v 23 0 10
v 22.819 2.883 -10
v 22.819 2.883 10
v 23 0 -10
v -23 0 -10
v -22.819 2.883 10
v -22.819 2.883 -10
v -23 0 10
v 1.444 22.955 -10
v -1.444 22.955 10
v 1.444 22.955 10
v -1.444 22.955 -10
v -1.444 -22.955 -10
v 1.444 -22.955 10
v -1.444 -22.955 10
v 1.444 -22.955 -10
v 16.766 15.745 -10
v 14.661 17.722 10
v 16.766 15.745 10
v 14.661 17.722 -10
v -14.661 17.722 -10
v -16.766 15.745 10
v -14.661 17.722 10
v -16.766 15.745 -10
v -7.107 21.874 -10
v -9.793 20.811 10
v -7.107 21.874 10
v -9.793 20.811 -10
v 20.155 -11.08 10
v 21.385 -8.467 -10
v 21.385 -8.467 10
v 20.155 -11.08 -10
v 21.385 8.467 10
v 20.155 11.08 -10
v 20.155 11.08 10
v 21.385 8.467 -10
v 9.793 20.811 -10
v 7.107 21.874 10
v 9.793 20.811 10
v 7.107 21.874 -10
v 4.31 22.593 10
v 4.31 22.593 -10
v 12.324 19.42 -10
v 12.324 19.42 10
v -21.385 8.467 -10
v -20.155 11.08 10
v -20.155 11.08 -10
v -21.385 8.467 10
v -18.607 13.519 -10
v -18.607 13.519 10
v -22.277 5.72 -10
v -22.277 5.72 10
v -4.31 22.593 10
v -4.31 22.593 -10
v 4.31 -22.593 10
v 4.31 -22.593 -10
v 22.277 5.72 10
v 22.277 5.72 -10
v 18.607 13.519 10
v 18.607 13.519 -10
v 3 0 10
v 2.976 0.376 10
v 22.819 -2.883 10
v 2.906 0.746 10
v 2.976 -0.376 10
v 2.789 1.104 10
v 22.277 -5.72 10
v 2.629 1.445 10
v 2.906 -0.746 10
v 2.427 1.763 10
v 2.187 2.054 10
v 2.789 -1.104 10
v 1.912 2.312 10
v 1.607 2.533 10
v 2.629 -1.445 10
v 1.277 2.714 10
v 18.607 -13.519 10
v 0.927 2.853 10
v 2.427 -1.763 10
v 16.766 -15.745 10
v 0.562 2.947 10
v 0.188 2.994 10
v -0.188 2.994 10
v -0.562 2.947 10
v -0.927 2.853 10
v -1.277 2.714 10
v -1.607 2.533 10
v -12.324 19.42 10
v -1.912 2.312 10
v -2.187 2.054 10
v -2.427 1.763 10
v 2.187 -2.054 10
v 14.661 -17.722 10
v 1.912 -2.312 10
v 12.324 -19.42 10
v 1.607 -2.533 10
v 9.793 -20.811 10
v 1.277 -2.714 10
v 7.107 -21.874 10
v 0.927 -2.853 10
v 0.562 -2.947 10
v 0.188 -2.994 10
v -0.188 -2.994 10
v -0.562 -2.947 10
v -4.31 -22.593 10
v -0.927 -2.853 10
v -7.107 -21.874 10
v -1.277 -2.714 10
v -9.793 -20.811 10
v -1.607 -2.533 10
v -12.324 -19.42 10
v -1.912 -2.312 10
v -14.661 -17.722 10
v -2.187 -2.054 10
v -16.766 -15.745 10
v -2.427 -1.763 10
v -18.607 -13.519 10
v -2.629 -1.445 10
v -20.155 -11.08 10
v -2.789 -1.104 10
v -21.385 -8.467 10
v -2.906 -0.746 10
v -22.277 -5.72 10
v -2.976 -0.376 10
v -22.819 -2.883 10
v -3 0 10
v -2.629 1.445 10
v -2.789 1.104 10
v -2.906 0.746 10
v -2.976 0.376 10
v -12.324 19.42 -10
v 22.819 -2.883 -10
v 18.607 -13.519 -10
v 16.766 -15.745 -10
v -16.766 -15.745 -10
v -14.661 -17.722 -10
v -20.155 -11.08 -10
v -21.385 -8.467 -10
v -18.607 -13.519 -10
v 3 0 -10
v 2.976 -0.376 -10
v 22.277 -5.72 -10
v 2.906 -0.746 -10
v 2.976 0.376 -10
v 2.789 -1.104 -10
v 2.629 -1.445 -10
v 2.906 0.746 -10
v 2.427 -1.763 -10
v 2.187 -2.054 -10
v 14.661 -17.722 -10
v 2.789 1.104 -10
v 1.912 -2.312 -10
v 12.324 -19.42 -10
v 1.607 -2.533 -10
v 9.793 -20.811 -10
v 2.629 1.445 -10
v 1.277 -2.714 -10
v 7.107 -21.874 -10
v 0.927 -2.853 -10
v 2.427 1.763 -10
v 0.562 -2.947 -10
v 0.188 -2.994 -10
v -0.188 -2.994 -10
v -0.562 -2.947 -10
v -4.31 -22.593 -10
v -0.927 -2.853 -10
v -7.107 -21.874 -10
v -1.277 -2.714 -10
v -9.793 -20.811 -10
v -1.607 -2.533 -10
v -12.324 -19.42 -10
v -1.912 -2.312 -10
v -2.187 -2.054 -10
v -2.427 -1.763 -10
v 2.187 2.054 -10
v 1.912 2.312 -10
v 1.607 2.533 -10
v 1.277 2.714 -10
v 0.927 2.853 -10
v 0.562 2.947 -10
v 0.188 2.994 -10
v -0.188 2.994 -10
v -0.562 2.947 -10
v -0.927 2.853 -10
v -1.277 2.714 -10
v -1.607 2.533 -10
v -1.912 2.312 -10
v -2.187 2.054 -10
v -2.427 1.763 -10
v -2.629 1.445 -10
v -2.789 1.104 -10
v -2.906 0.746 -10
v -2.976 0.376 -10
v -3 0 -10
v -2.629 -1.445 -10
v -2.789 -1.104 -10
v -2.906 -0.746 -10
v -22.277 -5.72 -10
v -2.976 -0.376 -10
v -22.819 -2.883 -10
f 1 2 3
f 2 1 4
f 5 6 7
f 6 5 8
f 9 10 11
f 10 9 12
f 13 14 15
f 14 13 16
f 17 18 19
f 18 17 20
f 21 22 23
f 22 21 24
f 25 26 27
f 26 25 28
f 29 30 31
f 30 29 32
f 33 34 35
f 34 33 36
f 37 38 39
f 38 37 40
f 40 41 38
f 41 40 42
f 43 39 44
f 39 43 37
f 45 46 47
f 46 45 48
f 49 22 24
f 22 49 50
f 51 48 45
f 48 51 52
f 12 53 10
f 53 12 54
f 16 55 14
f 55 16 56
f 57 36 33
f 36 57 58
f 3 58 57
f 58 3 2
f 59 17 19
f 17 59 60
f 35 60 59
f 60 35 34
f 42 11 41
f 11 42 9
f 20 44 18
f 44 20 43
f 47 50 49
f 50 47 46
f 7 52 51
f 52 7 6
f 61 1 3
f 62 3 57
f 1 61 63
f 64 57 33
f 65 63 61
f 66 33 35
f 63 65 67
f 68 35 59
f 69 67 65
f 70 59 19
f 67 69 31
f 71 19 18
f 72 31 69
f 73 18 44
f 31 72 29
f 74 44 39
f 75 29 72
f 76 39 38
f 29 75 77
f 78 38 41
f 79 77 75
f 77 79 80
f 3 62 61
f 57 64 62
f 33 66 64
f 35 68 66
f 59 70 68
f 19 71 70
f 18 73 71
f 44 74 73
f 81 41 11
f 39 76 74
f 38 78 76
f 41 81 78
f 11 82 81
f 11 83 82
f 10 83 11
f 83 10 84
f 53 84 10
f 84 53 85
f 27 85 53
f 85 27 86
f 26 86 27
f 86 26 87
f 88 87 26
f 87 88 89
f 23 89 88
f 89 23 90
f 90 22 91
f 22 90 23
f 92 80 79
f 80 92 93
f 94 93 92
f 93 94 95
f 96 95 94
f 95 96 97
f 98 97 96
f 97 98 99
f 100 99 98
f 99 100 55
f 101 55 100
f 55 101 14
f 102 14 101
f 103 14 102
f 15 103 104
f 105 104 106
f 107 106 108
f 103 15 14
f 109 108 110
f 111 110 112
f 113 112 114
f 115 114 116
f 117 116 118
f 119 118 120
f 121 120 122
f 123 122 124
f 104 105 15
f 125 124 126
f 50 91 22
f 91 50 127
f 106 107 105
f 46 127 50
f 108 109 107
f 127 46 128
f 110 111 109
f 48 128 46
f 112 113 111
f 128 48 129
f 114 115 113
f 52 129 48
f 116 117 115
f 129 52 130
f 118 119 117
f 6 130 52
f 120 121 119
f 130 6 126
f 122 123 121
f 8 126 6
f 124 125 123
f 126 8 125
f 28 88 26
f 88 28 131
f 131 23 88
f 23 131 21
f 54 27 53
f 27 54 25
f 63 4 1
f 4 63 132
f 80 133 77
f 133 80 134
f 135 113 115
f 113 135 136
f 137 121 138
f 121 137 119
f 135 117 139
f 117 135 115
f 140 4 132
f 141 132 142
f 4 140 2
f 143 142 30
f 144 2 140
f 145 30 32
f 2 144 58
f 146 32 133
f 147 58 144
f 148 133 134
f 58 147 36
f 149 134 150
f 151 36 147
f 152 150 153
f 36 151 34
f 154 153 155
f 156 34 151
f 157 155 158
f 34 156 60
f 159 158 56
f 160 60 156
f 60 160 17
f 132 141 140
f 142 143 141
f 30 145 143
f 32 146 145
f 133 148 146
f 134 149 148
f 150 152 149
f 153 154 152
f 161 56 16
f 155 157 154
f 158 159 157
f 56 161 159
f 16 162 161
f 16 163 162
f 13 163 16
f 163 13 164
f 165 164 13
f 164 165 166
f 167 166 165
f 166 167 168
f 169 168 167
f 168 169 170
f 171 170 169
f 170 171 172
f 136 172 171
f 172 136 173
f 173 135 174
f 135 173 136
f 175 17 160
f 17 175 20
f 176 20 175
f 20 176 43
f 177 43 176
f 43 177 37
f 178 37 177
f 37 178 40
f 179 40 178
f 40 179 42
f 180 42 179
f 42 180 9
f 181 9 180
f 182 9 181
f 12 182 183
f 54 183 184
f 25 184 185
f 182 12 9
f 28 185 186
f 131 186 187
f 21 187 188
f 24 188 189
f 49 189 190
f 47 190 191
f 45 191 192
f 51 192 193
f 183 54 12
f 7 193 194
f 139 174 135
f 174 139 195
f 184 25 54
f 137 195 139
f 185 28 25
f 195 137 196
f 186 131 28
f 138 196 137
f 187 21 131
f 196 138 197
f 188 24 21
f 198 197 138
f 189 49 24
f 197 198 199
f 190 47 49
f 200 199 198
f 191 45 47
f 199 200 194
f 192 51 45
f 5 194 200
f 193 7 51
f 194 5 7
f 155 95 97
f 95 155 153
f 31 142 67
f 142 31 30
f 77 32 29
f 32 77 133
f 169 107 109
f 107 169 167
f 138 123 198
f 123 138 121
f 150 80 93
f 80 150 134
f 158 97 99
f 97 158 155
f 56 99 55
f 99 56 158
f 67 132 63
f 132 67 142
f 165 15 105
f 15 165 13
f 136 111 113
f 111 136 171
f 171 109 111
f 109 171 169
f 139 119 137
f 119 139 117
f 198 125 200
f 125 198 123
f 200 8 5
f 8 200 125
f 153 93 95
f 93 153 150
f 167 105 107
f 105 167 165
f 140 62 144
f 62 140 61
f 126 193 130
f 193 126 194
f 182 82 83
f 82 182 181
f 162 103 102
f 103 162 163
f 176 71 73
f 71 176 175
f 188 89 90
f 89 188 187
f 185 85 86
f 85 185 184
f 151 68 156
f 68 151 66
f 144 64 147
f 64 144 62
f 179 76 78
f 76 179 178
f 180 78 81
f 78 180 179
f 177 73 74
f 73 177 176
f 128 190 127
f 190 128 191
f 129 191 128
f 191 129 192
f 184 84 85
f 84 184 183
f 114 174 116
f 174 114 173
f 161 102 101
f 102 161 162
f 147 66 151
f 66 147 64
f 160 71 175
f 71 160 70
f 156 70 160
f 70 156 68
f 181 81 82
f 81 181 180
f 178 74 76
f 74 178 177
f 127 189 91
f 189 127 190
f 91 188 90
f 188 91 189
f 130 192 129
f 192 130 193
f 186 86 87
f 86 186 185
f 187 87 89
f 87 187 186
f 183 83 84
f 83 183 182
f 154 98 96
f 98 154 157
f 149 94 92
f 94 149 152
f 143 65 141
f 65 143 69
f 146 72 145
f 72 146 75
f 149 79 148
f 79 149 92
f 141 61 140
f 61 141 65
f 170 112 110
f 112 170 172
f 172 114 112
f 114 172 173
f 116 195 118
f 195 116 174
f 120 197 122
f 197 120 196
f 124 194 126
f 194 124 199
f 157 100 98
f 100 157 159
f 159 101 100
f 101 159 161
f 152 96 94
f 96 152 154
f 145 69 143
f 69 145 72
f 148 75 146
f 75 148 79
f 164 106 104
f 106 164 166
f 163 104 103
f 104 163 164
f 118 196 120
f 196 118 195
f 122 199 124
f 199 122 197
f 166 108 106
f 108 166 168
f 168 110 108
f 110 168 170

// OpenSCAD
$fn = 50;


difference() {
	union() {
		translate(v = [0, 0, -10.0000000000]) {
			cylinder(h = 20, r = 23.0000000000);
		}
	}
	union() {
		translate(v = [0, 0, -100.0000000000]) {
			cylinder(h = 200, r = 3.0000000000);
		}
	}
}
